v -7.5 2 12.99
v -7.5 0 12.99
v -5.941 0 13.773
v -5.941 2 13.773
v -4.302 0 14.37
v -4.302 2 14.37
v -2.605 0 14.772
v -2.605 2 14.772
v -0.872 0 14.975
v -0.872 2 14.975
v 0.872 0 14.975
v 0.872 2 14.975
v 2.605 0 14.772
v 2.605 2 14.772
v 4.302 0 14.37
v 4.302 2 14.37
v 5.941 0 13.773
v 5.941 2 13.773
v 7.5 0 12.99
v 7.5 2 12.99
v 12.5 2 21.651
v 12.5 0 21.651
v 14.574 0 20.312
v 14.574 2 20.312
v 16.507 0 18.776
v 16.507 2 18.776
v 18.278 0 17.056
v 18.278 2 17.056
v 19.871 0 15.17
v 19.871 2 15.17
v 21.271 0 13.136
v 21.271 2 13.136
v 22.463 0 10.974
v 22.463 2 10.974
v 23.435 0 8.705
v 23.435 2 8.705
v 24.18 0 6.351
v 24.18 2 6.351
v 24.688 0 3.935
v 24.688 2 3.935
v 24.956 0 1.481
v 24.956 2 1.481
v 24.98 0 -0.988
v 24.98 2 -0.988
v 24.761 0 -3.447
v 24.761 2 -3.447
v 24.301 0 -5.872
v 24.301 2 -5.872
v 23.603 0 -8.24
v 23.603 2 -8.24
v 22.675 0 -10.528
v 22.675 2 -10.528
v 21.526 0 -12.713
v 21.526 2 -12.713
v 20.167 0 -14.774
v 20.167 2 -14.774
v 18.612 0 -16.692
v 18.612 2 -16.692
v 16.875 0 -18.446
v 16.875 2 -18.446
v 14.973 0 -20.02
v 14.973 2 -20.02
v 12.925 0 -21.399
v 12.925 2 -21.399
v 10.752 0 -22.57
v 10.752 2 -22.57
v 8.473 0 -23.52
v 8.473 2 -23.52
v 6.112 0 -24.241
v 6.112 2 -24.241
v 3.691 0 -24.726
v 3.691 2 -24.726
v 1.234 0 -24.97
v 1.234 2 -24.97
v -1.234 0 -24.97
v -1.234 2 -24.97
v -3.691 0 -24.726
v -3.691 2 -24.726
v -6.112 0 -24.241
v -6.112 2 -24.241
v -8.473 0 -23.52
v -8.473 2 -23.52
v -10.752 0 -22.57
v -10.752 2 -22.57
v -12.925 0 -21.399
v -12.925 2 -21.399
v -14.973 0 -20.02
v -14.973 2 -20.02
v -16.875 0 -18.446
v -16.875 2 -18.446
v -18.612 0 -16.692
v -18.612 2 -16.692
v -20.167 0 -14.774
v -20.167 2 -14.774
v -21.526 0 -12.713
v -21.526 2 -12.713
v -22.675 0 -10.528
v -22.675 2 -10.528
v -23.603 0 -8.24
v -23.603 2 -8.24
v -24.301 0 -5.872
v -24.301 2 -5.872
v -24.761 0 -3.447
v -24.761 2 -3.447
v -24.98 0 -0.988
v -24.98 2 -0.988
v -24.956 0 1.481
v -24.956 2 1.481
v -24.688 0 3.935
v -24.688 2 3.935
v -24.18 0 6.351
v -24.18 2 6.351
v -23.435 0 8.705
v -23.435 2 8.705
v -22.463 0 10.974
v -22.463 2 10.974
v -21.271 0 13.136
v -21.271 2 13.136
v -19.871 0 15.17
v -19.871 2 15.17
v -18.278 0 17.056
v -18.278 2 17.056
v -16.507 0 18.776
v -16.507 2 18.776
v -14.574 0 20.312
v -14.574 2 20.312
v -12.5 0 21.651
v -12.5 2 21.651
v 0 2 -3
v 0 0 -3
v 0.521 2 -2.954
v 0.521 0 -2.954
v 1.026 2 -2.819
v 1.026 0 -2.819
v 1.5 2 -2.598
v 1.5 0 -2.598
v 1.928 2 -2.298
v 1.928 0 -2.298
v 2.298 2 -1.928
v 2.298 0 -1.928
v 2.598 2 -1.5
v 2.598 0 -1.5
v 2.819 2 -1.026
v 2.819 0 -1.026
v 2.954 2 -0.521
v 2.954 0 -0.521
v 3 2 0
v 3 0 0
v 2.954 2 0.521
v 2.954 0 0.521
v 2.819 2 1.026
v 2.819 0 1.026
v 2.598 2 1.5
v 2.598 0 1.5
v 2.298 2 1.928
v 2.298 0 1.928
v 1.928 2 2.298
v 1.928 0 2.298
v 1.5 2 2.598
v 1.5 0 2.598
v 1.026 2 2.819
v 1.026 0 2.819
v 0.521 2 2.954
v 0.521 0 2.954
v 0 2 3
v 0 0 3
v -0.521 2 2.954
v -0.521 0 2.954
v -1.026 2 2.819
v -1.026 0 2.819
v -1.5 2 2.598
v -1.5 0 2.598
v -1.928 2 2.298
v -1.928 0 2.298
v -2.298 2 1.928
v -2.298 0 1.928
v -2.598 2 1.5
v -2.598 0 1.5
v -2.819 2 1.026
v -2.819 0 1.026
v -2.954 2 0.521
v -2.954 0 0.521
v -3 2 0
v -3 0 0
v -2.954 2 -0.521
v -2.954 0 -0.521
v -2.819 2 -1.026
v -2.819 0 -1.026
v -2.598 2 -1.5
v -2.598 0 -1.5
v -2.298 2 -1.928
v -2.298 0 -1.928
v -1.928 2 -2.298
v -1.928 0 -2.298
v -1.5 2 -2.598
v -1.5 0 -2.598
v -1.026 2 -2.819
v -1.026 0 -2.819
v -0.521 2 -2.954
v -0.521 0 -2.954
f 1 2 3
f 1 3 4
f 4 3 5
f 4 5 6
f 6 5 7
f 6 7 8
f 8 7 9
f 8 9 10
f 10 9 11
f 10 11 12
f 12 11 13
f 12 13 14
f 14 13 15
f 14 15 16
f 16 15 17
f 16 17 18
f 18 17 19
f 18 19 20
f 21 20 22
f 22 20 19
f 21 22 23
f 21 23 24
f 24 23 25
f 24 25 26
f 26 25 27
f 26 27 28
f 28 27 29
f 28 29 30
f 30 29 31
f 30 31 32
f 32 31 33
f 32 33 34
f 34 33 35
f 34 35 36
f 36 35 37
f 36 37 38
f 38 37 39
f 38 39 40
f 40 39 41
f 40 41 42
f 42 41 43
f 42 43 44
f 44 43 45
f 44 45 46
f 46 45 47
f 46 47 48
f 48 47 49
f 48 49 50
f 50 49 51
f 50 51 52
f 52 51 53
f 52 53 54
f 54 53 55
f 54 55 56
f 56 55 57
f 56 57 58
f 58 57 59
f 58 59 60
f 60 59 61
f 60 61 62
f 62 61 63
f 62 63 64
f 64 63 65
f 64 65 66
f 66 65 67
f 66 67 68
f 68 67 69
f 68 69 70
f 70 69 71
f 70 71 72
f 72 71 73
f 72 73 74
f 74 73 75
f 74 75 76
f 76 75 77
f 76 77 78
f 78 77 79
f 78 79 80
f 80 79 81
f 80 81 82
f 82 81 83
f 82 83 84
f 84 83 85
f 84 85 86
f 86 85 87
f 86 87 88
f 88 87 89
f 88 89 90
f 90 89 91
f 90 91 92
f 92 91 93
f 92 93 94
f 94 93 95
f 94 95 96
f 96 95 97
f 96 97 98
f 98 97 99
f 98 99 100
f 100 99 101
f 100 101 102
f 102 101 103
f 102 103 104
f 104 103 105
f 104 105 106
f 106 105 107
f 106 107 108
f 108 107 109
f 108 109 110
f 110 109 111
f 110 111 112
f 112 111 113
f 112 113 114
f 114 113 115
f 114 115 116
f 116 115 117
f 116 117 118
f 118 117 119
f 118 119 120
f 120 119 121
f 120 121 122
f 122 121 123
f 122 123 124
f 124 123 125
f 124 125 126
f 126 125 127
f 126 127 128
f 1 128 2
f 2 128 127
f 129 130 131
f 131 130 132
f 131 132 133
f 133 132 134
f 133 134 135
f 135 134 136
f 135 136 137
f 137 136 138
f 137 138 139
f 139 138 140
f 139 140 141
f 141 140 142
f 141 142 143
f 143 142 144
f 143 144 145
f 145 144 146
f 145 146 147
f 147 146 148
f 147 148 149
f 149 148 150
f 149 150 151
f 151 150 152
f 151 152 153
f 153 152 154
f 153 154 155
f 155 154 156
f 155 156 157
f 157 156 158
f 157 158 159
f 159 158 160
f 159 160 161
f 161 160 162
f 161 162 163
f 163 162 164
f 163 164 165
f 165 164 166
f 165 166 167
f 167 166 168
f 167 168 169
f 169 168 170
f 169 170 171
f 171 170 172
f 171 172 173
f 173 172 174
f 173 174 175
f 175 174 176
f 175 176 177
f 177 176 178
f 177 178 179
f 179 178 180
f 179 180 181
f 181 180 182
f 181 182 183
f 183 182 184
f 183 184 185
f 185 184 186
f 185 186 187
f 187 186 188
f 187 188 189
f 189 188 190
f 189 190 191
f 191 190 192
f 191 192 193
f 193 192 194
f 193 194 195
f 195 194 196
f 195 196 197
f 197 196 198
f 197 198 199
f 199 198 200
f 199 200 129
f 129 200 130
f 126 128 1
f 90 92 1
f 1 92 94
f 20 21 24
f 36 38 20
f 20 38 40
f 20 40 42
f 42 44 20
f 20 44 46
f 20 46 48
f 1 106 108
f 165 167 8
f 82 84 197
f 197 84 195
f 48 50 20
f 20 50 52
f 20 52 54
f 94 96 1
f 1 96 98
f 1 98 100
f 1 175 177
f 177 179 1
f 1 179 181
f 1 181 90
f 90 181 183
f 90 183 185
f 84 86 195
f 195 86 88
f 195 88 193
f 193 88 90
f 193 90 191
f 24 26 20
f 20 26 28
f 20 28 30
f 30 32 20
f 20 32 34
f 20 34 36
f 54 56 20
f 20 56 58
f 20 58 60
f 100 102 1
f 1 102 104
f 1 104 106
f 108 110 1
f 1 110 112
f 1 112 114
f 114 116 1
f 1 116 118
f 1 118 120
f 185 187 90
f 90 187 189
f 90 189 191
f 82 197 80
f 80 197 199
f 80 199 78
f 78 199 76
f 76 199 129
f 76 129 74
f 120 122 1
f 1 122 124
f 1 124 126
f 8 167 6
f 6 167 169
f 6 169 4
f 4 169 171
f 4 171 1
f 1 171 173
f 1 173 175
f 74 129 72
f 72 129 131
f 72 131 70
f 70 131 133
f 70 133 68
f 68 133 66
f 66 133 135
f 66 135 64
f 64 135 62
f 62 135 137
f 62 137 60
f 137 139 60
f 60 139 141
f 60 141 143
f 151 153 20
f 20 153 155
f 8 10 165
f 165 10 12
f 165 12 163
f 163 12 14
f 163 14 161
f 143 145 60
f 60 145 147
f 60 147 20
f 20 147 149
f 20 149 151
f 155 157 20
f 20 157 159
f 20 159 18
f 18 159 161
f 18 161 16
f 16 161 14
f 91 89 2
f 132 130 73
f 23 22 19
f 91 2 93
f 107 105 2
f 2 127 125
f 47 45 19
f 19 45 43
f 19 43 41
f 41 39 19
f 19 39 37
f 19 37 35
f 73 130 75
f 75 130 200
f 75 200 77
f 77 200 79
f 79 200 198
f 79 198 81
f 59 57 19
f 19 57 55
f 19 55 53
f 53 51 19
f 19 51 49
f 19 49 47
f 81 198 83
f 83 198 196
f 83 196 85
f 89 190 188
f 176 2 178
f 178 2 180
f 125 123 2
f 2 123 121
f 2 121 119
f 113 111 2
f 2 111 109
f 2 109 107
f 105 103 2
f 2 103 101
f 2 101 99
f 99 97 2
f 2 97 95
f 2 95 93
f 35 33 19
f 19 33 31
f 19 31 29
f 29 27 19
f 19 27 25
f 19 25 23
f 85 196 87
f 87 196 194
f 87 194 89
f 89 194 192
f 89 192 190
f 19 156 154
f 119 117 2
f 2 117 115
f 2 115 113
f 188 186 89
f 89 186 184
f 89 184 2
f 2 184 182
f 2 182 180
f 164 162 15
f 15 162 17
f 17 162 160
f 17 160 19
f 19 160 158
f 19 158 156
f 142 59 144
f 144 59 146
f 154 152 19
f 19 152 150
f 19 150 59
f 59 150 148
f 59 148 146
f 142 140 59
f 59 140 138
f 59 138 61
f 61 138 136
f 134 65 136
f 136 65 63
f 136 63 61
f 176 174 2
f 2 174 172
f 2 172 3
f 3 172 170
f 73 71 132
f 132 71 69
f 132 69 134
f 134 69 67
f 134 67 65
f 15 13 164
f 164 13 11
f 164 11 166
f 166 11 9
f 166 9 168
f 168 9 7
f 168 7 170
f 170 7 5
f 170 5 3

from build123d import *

# Parameters (mm, degrees)
SKETCH_1_R      = 3
EXTRUDE_1_DEPTH = 2


with BuildPart() as part:
    # Эскиз1 → Бобышка-Вытянуть1 (new body)
    with BuildSketch(Plane(origin=(0, 0, 0), x_dir=(1, 0, 0), z_dir=(0, 1, 0))):
        with BuildLine():
            ThreePointArc((-7.5, -12.990381057), (0, -15), (7.5, -12.990381057))
            Line((7.5, -12.990381057), (12.5, -21.650635095))
            ThreePointArc((12.5, -21.650635095), (0, 25), (-12.5, -21.650635095))
            Line((-12.5, -21.650635095), (-7.5, -12.990381057))
        make_face()
        Circle(SKETCH_1_R, mode=Mode.SUBTRACT)
    extrude(amount=EXTRUDE_1_DEPTH)


solid = part.part
